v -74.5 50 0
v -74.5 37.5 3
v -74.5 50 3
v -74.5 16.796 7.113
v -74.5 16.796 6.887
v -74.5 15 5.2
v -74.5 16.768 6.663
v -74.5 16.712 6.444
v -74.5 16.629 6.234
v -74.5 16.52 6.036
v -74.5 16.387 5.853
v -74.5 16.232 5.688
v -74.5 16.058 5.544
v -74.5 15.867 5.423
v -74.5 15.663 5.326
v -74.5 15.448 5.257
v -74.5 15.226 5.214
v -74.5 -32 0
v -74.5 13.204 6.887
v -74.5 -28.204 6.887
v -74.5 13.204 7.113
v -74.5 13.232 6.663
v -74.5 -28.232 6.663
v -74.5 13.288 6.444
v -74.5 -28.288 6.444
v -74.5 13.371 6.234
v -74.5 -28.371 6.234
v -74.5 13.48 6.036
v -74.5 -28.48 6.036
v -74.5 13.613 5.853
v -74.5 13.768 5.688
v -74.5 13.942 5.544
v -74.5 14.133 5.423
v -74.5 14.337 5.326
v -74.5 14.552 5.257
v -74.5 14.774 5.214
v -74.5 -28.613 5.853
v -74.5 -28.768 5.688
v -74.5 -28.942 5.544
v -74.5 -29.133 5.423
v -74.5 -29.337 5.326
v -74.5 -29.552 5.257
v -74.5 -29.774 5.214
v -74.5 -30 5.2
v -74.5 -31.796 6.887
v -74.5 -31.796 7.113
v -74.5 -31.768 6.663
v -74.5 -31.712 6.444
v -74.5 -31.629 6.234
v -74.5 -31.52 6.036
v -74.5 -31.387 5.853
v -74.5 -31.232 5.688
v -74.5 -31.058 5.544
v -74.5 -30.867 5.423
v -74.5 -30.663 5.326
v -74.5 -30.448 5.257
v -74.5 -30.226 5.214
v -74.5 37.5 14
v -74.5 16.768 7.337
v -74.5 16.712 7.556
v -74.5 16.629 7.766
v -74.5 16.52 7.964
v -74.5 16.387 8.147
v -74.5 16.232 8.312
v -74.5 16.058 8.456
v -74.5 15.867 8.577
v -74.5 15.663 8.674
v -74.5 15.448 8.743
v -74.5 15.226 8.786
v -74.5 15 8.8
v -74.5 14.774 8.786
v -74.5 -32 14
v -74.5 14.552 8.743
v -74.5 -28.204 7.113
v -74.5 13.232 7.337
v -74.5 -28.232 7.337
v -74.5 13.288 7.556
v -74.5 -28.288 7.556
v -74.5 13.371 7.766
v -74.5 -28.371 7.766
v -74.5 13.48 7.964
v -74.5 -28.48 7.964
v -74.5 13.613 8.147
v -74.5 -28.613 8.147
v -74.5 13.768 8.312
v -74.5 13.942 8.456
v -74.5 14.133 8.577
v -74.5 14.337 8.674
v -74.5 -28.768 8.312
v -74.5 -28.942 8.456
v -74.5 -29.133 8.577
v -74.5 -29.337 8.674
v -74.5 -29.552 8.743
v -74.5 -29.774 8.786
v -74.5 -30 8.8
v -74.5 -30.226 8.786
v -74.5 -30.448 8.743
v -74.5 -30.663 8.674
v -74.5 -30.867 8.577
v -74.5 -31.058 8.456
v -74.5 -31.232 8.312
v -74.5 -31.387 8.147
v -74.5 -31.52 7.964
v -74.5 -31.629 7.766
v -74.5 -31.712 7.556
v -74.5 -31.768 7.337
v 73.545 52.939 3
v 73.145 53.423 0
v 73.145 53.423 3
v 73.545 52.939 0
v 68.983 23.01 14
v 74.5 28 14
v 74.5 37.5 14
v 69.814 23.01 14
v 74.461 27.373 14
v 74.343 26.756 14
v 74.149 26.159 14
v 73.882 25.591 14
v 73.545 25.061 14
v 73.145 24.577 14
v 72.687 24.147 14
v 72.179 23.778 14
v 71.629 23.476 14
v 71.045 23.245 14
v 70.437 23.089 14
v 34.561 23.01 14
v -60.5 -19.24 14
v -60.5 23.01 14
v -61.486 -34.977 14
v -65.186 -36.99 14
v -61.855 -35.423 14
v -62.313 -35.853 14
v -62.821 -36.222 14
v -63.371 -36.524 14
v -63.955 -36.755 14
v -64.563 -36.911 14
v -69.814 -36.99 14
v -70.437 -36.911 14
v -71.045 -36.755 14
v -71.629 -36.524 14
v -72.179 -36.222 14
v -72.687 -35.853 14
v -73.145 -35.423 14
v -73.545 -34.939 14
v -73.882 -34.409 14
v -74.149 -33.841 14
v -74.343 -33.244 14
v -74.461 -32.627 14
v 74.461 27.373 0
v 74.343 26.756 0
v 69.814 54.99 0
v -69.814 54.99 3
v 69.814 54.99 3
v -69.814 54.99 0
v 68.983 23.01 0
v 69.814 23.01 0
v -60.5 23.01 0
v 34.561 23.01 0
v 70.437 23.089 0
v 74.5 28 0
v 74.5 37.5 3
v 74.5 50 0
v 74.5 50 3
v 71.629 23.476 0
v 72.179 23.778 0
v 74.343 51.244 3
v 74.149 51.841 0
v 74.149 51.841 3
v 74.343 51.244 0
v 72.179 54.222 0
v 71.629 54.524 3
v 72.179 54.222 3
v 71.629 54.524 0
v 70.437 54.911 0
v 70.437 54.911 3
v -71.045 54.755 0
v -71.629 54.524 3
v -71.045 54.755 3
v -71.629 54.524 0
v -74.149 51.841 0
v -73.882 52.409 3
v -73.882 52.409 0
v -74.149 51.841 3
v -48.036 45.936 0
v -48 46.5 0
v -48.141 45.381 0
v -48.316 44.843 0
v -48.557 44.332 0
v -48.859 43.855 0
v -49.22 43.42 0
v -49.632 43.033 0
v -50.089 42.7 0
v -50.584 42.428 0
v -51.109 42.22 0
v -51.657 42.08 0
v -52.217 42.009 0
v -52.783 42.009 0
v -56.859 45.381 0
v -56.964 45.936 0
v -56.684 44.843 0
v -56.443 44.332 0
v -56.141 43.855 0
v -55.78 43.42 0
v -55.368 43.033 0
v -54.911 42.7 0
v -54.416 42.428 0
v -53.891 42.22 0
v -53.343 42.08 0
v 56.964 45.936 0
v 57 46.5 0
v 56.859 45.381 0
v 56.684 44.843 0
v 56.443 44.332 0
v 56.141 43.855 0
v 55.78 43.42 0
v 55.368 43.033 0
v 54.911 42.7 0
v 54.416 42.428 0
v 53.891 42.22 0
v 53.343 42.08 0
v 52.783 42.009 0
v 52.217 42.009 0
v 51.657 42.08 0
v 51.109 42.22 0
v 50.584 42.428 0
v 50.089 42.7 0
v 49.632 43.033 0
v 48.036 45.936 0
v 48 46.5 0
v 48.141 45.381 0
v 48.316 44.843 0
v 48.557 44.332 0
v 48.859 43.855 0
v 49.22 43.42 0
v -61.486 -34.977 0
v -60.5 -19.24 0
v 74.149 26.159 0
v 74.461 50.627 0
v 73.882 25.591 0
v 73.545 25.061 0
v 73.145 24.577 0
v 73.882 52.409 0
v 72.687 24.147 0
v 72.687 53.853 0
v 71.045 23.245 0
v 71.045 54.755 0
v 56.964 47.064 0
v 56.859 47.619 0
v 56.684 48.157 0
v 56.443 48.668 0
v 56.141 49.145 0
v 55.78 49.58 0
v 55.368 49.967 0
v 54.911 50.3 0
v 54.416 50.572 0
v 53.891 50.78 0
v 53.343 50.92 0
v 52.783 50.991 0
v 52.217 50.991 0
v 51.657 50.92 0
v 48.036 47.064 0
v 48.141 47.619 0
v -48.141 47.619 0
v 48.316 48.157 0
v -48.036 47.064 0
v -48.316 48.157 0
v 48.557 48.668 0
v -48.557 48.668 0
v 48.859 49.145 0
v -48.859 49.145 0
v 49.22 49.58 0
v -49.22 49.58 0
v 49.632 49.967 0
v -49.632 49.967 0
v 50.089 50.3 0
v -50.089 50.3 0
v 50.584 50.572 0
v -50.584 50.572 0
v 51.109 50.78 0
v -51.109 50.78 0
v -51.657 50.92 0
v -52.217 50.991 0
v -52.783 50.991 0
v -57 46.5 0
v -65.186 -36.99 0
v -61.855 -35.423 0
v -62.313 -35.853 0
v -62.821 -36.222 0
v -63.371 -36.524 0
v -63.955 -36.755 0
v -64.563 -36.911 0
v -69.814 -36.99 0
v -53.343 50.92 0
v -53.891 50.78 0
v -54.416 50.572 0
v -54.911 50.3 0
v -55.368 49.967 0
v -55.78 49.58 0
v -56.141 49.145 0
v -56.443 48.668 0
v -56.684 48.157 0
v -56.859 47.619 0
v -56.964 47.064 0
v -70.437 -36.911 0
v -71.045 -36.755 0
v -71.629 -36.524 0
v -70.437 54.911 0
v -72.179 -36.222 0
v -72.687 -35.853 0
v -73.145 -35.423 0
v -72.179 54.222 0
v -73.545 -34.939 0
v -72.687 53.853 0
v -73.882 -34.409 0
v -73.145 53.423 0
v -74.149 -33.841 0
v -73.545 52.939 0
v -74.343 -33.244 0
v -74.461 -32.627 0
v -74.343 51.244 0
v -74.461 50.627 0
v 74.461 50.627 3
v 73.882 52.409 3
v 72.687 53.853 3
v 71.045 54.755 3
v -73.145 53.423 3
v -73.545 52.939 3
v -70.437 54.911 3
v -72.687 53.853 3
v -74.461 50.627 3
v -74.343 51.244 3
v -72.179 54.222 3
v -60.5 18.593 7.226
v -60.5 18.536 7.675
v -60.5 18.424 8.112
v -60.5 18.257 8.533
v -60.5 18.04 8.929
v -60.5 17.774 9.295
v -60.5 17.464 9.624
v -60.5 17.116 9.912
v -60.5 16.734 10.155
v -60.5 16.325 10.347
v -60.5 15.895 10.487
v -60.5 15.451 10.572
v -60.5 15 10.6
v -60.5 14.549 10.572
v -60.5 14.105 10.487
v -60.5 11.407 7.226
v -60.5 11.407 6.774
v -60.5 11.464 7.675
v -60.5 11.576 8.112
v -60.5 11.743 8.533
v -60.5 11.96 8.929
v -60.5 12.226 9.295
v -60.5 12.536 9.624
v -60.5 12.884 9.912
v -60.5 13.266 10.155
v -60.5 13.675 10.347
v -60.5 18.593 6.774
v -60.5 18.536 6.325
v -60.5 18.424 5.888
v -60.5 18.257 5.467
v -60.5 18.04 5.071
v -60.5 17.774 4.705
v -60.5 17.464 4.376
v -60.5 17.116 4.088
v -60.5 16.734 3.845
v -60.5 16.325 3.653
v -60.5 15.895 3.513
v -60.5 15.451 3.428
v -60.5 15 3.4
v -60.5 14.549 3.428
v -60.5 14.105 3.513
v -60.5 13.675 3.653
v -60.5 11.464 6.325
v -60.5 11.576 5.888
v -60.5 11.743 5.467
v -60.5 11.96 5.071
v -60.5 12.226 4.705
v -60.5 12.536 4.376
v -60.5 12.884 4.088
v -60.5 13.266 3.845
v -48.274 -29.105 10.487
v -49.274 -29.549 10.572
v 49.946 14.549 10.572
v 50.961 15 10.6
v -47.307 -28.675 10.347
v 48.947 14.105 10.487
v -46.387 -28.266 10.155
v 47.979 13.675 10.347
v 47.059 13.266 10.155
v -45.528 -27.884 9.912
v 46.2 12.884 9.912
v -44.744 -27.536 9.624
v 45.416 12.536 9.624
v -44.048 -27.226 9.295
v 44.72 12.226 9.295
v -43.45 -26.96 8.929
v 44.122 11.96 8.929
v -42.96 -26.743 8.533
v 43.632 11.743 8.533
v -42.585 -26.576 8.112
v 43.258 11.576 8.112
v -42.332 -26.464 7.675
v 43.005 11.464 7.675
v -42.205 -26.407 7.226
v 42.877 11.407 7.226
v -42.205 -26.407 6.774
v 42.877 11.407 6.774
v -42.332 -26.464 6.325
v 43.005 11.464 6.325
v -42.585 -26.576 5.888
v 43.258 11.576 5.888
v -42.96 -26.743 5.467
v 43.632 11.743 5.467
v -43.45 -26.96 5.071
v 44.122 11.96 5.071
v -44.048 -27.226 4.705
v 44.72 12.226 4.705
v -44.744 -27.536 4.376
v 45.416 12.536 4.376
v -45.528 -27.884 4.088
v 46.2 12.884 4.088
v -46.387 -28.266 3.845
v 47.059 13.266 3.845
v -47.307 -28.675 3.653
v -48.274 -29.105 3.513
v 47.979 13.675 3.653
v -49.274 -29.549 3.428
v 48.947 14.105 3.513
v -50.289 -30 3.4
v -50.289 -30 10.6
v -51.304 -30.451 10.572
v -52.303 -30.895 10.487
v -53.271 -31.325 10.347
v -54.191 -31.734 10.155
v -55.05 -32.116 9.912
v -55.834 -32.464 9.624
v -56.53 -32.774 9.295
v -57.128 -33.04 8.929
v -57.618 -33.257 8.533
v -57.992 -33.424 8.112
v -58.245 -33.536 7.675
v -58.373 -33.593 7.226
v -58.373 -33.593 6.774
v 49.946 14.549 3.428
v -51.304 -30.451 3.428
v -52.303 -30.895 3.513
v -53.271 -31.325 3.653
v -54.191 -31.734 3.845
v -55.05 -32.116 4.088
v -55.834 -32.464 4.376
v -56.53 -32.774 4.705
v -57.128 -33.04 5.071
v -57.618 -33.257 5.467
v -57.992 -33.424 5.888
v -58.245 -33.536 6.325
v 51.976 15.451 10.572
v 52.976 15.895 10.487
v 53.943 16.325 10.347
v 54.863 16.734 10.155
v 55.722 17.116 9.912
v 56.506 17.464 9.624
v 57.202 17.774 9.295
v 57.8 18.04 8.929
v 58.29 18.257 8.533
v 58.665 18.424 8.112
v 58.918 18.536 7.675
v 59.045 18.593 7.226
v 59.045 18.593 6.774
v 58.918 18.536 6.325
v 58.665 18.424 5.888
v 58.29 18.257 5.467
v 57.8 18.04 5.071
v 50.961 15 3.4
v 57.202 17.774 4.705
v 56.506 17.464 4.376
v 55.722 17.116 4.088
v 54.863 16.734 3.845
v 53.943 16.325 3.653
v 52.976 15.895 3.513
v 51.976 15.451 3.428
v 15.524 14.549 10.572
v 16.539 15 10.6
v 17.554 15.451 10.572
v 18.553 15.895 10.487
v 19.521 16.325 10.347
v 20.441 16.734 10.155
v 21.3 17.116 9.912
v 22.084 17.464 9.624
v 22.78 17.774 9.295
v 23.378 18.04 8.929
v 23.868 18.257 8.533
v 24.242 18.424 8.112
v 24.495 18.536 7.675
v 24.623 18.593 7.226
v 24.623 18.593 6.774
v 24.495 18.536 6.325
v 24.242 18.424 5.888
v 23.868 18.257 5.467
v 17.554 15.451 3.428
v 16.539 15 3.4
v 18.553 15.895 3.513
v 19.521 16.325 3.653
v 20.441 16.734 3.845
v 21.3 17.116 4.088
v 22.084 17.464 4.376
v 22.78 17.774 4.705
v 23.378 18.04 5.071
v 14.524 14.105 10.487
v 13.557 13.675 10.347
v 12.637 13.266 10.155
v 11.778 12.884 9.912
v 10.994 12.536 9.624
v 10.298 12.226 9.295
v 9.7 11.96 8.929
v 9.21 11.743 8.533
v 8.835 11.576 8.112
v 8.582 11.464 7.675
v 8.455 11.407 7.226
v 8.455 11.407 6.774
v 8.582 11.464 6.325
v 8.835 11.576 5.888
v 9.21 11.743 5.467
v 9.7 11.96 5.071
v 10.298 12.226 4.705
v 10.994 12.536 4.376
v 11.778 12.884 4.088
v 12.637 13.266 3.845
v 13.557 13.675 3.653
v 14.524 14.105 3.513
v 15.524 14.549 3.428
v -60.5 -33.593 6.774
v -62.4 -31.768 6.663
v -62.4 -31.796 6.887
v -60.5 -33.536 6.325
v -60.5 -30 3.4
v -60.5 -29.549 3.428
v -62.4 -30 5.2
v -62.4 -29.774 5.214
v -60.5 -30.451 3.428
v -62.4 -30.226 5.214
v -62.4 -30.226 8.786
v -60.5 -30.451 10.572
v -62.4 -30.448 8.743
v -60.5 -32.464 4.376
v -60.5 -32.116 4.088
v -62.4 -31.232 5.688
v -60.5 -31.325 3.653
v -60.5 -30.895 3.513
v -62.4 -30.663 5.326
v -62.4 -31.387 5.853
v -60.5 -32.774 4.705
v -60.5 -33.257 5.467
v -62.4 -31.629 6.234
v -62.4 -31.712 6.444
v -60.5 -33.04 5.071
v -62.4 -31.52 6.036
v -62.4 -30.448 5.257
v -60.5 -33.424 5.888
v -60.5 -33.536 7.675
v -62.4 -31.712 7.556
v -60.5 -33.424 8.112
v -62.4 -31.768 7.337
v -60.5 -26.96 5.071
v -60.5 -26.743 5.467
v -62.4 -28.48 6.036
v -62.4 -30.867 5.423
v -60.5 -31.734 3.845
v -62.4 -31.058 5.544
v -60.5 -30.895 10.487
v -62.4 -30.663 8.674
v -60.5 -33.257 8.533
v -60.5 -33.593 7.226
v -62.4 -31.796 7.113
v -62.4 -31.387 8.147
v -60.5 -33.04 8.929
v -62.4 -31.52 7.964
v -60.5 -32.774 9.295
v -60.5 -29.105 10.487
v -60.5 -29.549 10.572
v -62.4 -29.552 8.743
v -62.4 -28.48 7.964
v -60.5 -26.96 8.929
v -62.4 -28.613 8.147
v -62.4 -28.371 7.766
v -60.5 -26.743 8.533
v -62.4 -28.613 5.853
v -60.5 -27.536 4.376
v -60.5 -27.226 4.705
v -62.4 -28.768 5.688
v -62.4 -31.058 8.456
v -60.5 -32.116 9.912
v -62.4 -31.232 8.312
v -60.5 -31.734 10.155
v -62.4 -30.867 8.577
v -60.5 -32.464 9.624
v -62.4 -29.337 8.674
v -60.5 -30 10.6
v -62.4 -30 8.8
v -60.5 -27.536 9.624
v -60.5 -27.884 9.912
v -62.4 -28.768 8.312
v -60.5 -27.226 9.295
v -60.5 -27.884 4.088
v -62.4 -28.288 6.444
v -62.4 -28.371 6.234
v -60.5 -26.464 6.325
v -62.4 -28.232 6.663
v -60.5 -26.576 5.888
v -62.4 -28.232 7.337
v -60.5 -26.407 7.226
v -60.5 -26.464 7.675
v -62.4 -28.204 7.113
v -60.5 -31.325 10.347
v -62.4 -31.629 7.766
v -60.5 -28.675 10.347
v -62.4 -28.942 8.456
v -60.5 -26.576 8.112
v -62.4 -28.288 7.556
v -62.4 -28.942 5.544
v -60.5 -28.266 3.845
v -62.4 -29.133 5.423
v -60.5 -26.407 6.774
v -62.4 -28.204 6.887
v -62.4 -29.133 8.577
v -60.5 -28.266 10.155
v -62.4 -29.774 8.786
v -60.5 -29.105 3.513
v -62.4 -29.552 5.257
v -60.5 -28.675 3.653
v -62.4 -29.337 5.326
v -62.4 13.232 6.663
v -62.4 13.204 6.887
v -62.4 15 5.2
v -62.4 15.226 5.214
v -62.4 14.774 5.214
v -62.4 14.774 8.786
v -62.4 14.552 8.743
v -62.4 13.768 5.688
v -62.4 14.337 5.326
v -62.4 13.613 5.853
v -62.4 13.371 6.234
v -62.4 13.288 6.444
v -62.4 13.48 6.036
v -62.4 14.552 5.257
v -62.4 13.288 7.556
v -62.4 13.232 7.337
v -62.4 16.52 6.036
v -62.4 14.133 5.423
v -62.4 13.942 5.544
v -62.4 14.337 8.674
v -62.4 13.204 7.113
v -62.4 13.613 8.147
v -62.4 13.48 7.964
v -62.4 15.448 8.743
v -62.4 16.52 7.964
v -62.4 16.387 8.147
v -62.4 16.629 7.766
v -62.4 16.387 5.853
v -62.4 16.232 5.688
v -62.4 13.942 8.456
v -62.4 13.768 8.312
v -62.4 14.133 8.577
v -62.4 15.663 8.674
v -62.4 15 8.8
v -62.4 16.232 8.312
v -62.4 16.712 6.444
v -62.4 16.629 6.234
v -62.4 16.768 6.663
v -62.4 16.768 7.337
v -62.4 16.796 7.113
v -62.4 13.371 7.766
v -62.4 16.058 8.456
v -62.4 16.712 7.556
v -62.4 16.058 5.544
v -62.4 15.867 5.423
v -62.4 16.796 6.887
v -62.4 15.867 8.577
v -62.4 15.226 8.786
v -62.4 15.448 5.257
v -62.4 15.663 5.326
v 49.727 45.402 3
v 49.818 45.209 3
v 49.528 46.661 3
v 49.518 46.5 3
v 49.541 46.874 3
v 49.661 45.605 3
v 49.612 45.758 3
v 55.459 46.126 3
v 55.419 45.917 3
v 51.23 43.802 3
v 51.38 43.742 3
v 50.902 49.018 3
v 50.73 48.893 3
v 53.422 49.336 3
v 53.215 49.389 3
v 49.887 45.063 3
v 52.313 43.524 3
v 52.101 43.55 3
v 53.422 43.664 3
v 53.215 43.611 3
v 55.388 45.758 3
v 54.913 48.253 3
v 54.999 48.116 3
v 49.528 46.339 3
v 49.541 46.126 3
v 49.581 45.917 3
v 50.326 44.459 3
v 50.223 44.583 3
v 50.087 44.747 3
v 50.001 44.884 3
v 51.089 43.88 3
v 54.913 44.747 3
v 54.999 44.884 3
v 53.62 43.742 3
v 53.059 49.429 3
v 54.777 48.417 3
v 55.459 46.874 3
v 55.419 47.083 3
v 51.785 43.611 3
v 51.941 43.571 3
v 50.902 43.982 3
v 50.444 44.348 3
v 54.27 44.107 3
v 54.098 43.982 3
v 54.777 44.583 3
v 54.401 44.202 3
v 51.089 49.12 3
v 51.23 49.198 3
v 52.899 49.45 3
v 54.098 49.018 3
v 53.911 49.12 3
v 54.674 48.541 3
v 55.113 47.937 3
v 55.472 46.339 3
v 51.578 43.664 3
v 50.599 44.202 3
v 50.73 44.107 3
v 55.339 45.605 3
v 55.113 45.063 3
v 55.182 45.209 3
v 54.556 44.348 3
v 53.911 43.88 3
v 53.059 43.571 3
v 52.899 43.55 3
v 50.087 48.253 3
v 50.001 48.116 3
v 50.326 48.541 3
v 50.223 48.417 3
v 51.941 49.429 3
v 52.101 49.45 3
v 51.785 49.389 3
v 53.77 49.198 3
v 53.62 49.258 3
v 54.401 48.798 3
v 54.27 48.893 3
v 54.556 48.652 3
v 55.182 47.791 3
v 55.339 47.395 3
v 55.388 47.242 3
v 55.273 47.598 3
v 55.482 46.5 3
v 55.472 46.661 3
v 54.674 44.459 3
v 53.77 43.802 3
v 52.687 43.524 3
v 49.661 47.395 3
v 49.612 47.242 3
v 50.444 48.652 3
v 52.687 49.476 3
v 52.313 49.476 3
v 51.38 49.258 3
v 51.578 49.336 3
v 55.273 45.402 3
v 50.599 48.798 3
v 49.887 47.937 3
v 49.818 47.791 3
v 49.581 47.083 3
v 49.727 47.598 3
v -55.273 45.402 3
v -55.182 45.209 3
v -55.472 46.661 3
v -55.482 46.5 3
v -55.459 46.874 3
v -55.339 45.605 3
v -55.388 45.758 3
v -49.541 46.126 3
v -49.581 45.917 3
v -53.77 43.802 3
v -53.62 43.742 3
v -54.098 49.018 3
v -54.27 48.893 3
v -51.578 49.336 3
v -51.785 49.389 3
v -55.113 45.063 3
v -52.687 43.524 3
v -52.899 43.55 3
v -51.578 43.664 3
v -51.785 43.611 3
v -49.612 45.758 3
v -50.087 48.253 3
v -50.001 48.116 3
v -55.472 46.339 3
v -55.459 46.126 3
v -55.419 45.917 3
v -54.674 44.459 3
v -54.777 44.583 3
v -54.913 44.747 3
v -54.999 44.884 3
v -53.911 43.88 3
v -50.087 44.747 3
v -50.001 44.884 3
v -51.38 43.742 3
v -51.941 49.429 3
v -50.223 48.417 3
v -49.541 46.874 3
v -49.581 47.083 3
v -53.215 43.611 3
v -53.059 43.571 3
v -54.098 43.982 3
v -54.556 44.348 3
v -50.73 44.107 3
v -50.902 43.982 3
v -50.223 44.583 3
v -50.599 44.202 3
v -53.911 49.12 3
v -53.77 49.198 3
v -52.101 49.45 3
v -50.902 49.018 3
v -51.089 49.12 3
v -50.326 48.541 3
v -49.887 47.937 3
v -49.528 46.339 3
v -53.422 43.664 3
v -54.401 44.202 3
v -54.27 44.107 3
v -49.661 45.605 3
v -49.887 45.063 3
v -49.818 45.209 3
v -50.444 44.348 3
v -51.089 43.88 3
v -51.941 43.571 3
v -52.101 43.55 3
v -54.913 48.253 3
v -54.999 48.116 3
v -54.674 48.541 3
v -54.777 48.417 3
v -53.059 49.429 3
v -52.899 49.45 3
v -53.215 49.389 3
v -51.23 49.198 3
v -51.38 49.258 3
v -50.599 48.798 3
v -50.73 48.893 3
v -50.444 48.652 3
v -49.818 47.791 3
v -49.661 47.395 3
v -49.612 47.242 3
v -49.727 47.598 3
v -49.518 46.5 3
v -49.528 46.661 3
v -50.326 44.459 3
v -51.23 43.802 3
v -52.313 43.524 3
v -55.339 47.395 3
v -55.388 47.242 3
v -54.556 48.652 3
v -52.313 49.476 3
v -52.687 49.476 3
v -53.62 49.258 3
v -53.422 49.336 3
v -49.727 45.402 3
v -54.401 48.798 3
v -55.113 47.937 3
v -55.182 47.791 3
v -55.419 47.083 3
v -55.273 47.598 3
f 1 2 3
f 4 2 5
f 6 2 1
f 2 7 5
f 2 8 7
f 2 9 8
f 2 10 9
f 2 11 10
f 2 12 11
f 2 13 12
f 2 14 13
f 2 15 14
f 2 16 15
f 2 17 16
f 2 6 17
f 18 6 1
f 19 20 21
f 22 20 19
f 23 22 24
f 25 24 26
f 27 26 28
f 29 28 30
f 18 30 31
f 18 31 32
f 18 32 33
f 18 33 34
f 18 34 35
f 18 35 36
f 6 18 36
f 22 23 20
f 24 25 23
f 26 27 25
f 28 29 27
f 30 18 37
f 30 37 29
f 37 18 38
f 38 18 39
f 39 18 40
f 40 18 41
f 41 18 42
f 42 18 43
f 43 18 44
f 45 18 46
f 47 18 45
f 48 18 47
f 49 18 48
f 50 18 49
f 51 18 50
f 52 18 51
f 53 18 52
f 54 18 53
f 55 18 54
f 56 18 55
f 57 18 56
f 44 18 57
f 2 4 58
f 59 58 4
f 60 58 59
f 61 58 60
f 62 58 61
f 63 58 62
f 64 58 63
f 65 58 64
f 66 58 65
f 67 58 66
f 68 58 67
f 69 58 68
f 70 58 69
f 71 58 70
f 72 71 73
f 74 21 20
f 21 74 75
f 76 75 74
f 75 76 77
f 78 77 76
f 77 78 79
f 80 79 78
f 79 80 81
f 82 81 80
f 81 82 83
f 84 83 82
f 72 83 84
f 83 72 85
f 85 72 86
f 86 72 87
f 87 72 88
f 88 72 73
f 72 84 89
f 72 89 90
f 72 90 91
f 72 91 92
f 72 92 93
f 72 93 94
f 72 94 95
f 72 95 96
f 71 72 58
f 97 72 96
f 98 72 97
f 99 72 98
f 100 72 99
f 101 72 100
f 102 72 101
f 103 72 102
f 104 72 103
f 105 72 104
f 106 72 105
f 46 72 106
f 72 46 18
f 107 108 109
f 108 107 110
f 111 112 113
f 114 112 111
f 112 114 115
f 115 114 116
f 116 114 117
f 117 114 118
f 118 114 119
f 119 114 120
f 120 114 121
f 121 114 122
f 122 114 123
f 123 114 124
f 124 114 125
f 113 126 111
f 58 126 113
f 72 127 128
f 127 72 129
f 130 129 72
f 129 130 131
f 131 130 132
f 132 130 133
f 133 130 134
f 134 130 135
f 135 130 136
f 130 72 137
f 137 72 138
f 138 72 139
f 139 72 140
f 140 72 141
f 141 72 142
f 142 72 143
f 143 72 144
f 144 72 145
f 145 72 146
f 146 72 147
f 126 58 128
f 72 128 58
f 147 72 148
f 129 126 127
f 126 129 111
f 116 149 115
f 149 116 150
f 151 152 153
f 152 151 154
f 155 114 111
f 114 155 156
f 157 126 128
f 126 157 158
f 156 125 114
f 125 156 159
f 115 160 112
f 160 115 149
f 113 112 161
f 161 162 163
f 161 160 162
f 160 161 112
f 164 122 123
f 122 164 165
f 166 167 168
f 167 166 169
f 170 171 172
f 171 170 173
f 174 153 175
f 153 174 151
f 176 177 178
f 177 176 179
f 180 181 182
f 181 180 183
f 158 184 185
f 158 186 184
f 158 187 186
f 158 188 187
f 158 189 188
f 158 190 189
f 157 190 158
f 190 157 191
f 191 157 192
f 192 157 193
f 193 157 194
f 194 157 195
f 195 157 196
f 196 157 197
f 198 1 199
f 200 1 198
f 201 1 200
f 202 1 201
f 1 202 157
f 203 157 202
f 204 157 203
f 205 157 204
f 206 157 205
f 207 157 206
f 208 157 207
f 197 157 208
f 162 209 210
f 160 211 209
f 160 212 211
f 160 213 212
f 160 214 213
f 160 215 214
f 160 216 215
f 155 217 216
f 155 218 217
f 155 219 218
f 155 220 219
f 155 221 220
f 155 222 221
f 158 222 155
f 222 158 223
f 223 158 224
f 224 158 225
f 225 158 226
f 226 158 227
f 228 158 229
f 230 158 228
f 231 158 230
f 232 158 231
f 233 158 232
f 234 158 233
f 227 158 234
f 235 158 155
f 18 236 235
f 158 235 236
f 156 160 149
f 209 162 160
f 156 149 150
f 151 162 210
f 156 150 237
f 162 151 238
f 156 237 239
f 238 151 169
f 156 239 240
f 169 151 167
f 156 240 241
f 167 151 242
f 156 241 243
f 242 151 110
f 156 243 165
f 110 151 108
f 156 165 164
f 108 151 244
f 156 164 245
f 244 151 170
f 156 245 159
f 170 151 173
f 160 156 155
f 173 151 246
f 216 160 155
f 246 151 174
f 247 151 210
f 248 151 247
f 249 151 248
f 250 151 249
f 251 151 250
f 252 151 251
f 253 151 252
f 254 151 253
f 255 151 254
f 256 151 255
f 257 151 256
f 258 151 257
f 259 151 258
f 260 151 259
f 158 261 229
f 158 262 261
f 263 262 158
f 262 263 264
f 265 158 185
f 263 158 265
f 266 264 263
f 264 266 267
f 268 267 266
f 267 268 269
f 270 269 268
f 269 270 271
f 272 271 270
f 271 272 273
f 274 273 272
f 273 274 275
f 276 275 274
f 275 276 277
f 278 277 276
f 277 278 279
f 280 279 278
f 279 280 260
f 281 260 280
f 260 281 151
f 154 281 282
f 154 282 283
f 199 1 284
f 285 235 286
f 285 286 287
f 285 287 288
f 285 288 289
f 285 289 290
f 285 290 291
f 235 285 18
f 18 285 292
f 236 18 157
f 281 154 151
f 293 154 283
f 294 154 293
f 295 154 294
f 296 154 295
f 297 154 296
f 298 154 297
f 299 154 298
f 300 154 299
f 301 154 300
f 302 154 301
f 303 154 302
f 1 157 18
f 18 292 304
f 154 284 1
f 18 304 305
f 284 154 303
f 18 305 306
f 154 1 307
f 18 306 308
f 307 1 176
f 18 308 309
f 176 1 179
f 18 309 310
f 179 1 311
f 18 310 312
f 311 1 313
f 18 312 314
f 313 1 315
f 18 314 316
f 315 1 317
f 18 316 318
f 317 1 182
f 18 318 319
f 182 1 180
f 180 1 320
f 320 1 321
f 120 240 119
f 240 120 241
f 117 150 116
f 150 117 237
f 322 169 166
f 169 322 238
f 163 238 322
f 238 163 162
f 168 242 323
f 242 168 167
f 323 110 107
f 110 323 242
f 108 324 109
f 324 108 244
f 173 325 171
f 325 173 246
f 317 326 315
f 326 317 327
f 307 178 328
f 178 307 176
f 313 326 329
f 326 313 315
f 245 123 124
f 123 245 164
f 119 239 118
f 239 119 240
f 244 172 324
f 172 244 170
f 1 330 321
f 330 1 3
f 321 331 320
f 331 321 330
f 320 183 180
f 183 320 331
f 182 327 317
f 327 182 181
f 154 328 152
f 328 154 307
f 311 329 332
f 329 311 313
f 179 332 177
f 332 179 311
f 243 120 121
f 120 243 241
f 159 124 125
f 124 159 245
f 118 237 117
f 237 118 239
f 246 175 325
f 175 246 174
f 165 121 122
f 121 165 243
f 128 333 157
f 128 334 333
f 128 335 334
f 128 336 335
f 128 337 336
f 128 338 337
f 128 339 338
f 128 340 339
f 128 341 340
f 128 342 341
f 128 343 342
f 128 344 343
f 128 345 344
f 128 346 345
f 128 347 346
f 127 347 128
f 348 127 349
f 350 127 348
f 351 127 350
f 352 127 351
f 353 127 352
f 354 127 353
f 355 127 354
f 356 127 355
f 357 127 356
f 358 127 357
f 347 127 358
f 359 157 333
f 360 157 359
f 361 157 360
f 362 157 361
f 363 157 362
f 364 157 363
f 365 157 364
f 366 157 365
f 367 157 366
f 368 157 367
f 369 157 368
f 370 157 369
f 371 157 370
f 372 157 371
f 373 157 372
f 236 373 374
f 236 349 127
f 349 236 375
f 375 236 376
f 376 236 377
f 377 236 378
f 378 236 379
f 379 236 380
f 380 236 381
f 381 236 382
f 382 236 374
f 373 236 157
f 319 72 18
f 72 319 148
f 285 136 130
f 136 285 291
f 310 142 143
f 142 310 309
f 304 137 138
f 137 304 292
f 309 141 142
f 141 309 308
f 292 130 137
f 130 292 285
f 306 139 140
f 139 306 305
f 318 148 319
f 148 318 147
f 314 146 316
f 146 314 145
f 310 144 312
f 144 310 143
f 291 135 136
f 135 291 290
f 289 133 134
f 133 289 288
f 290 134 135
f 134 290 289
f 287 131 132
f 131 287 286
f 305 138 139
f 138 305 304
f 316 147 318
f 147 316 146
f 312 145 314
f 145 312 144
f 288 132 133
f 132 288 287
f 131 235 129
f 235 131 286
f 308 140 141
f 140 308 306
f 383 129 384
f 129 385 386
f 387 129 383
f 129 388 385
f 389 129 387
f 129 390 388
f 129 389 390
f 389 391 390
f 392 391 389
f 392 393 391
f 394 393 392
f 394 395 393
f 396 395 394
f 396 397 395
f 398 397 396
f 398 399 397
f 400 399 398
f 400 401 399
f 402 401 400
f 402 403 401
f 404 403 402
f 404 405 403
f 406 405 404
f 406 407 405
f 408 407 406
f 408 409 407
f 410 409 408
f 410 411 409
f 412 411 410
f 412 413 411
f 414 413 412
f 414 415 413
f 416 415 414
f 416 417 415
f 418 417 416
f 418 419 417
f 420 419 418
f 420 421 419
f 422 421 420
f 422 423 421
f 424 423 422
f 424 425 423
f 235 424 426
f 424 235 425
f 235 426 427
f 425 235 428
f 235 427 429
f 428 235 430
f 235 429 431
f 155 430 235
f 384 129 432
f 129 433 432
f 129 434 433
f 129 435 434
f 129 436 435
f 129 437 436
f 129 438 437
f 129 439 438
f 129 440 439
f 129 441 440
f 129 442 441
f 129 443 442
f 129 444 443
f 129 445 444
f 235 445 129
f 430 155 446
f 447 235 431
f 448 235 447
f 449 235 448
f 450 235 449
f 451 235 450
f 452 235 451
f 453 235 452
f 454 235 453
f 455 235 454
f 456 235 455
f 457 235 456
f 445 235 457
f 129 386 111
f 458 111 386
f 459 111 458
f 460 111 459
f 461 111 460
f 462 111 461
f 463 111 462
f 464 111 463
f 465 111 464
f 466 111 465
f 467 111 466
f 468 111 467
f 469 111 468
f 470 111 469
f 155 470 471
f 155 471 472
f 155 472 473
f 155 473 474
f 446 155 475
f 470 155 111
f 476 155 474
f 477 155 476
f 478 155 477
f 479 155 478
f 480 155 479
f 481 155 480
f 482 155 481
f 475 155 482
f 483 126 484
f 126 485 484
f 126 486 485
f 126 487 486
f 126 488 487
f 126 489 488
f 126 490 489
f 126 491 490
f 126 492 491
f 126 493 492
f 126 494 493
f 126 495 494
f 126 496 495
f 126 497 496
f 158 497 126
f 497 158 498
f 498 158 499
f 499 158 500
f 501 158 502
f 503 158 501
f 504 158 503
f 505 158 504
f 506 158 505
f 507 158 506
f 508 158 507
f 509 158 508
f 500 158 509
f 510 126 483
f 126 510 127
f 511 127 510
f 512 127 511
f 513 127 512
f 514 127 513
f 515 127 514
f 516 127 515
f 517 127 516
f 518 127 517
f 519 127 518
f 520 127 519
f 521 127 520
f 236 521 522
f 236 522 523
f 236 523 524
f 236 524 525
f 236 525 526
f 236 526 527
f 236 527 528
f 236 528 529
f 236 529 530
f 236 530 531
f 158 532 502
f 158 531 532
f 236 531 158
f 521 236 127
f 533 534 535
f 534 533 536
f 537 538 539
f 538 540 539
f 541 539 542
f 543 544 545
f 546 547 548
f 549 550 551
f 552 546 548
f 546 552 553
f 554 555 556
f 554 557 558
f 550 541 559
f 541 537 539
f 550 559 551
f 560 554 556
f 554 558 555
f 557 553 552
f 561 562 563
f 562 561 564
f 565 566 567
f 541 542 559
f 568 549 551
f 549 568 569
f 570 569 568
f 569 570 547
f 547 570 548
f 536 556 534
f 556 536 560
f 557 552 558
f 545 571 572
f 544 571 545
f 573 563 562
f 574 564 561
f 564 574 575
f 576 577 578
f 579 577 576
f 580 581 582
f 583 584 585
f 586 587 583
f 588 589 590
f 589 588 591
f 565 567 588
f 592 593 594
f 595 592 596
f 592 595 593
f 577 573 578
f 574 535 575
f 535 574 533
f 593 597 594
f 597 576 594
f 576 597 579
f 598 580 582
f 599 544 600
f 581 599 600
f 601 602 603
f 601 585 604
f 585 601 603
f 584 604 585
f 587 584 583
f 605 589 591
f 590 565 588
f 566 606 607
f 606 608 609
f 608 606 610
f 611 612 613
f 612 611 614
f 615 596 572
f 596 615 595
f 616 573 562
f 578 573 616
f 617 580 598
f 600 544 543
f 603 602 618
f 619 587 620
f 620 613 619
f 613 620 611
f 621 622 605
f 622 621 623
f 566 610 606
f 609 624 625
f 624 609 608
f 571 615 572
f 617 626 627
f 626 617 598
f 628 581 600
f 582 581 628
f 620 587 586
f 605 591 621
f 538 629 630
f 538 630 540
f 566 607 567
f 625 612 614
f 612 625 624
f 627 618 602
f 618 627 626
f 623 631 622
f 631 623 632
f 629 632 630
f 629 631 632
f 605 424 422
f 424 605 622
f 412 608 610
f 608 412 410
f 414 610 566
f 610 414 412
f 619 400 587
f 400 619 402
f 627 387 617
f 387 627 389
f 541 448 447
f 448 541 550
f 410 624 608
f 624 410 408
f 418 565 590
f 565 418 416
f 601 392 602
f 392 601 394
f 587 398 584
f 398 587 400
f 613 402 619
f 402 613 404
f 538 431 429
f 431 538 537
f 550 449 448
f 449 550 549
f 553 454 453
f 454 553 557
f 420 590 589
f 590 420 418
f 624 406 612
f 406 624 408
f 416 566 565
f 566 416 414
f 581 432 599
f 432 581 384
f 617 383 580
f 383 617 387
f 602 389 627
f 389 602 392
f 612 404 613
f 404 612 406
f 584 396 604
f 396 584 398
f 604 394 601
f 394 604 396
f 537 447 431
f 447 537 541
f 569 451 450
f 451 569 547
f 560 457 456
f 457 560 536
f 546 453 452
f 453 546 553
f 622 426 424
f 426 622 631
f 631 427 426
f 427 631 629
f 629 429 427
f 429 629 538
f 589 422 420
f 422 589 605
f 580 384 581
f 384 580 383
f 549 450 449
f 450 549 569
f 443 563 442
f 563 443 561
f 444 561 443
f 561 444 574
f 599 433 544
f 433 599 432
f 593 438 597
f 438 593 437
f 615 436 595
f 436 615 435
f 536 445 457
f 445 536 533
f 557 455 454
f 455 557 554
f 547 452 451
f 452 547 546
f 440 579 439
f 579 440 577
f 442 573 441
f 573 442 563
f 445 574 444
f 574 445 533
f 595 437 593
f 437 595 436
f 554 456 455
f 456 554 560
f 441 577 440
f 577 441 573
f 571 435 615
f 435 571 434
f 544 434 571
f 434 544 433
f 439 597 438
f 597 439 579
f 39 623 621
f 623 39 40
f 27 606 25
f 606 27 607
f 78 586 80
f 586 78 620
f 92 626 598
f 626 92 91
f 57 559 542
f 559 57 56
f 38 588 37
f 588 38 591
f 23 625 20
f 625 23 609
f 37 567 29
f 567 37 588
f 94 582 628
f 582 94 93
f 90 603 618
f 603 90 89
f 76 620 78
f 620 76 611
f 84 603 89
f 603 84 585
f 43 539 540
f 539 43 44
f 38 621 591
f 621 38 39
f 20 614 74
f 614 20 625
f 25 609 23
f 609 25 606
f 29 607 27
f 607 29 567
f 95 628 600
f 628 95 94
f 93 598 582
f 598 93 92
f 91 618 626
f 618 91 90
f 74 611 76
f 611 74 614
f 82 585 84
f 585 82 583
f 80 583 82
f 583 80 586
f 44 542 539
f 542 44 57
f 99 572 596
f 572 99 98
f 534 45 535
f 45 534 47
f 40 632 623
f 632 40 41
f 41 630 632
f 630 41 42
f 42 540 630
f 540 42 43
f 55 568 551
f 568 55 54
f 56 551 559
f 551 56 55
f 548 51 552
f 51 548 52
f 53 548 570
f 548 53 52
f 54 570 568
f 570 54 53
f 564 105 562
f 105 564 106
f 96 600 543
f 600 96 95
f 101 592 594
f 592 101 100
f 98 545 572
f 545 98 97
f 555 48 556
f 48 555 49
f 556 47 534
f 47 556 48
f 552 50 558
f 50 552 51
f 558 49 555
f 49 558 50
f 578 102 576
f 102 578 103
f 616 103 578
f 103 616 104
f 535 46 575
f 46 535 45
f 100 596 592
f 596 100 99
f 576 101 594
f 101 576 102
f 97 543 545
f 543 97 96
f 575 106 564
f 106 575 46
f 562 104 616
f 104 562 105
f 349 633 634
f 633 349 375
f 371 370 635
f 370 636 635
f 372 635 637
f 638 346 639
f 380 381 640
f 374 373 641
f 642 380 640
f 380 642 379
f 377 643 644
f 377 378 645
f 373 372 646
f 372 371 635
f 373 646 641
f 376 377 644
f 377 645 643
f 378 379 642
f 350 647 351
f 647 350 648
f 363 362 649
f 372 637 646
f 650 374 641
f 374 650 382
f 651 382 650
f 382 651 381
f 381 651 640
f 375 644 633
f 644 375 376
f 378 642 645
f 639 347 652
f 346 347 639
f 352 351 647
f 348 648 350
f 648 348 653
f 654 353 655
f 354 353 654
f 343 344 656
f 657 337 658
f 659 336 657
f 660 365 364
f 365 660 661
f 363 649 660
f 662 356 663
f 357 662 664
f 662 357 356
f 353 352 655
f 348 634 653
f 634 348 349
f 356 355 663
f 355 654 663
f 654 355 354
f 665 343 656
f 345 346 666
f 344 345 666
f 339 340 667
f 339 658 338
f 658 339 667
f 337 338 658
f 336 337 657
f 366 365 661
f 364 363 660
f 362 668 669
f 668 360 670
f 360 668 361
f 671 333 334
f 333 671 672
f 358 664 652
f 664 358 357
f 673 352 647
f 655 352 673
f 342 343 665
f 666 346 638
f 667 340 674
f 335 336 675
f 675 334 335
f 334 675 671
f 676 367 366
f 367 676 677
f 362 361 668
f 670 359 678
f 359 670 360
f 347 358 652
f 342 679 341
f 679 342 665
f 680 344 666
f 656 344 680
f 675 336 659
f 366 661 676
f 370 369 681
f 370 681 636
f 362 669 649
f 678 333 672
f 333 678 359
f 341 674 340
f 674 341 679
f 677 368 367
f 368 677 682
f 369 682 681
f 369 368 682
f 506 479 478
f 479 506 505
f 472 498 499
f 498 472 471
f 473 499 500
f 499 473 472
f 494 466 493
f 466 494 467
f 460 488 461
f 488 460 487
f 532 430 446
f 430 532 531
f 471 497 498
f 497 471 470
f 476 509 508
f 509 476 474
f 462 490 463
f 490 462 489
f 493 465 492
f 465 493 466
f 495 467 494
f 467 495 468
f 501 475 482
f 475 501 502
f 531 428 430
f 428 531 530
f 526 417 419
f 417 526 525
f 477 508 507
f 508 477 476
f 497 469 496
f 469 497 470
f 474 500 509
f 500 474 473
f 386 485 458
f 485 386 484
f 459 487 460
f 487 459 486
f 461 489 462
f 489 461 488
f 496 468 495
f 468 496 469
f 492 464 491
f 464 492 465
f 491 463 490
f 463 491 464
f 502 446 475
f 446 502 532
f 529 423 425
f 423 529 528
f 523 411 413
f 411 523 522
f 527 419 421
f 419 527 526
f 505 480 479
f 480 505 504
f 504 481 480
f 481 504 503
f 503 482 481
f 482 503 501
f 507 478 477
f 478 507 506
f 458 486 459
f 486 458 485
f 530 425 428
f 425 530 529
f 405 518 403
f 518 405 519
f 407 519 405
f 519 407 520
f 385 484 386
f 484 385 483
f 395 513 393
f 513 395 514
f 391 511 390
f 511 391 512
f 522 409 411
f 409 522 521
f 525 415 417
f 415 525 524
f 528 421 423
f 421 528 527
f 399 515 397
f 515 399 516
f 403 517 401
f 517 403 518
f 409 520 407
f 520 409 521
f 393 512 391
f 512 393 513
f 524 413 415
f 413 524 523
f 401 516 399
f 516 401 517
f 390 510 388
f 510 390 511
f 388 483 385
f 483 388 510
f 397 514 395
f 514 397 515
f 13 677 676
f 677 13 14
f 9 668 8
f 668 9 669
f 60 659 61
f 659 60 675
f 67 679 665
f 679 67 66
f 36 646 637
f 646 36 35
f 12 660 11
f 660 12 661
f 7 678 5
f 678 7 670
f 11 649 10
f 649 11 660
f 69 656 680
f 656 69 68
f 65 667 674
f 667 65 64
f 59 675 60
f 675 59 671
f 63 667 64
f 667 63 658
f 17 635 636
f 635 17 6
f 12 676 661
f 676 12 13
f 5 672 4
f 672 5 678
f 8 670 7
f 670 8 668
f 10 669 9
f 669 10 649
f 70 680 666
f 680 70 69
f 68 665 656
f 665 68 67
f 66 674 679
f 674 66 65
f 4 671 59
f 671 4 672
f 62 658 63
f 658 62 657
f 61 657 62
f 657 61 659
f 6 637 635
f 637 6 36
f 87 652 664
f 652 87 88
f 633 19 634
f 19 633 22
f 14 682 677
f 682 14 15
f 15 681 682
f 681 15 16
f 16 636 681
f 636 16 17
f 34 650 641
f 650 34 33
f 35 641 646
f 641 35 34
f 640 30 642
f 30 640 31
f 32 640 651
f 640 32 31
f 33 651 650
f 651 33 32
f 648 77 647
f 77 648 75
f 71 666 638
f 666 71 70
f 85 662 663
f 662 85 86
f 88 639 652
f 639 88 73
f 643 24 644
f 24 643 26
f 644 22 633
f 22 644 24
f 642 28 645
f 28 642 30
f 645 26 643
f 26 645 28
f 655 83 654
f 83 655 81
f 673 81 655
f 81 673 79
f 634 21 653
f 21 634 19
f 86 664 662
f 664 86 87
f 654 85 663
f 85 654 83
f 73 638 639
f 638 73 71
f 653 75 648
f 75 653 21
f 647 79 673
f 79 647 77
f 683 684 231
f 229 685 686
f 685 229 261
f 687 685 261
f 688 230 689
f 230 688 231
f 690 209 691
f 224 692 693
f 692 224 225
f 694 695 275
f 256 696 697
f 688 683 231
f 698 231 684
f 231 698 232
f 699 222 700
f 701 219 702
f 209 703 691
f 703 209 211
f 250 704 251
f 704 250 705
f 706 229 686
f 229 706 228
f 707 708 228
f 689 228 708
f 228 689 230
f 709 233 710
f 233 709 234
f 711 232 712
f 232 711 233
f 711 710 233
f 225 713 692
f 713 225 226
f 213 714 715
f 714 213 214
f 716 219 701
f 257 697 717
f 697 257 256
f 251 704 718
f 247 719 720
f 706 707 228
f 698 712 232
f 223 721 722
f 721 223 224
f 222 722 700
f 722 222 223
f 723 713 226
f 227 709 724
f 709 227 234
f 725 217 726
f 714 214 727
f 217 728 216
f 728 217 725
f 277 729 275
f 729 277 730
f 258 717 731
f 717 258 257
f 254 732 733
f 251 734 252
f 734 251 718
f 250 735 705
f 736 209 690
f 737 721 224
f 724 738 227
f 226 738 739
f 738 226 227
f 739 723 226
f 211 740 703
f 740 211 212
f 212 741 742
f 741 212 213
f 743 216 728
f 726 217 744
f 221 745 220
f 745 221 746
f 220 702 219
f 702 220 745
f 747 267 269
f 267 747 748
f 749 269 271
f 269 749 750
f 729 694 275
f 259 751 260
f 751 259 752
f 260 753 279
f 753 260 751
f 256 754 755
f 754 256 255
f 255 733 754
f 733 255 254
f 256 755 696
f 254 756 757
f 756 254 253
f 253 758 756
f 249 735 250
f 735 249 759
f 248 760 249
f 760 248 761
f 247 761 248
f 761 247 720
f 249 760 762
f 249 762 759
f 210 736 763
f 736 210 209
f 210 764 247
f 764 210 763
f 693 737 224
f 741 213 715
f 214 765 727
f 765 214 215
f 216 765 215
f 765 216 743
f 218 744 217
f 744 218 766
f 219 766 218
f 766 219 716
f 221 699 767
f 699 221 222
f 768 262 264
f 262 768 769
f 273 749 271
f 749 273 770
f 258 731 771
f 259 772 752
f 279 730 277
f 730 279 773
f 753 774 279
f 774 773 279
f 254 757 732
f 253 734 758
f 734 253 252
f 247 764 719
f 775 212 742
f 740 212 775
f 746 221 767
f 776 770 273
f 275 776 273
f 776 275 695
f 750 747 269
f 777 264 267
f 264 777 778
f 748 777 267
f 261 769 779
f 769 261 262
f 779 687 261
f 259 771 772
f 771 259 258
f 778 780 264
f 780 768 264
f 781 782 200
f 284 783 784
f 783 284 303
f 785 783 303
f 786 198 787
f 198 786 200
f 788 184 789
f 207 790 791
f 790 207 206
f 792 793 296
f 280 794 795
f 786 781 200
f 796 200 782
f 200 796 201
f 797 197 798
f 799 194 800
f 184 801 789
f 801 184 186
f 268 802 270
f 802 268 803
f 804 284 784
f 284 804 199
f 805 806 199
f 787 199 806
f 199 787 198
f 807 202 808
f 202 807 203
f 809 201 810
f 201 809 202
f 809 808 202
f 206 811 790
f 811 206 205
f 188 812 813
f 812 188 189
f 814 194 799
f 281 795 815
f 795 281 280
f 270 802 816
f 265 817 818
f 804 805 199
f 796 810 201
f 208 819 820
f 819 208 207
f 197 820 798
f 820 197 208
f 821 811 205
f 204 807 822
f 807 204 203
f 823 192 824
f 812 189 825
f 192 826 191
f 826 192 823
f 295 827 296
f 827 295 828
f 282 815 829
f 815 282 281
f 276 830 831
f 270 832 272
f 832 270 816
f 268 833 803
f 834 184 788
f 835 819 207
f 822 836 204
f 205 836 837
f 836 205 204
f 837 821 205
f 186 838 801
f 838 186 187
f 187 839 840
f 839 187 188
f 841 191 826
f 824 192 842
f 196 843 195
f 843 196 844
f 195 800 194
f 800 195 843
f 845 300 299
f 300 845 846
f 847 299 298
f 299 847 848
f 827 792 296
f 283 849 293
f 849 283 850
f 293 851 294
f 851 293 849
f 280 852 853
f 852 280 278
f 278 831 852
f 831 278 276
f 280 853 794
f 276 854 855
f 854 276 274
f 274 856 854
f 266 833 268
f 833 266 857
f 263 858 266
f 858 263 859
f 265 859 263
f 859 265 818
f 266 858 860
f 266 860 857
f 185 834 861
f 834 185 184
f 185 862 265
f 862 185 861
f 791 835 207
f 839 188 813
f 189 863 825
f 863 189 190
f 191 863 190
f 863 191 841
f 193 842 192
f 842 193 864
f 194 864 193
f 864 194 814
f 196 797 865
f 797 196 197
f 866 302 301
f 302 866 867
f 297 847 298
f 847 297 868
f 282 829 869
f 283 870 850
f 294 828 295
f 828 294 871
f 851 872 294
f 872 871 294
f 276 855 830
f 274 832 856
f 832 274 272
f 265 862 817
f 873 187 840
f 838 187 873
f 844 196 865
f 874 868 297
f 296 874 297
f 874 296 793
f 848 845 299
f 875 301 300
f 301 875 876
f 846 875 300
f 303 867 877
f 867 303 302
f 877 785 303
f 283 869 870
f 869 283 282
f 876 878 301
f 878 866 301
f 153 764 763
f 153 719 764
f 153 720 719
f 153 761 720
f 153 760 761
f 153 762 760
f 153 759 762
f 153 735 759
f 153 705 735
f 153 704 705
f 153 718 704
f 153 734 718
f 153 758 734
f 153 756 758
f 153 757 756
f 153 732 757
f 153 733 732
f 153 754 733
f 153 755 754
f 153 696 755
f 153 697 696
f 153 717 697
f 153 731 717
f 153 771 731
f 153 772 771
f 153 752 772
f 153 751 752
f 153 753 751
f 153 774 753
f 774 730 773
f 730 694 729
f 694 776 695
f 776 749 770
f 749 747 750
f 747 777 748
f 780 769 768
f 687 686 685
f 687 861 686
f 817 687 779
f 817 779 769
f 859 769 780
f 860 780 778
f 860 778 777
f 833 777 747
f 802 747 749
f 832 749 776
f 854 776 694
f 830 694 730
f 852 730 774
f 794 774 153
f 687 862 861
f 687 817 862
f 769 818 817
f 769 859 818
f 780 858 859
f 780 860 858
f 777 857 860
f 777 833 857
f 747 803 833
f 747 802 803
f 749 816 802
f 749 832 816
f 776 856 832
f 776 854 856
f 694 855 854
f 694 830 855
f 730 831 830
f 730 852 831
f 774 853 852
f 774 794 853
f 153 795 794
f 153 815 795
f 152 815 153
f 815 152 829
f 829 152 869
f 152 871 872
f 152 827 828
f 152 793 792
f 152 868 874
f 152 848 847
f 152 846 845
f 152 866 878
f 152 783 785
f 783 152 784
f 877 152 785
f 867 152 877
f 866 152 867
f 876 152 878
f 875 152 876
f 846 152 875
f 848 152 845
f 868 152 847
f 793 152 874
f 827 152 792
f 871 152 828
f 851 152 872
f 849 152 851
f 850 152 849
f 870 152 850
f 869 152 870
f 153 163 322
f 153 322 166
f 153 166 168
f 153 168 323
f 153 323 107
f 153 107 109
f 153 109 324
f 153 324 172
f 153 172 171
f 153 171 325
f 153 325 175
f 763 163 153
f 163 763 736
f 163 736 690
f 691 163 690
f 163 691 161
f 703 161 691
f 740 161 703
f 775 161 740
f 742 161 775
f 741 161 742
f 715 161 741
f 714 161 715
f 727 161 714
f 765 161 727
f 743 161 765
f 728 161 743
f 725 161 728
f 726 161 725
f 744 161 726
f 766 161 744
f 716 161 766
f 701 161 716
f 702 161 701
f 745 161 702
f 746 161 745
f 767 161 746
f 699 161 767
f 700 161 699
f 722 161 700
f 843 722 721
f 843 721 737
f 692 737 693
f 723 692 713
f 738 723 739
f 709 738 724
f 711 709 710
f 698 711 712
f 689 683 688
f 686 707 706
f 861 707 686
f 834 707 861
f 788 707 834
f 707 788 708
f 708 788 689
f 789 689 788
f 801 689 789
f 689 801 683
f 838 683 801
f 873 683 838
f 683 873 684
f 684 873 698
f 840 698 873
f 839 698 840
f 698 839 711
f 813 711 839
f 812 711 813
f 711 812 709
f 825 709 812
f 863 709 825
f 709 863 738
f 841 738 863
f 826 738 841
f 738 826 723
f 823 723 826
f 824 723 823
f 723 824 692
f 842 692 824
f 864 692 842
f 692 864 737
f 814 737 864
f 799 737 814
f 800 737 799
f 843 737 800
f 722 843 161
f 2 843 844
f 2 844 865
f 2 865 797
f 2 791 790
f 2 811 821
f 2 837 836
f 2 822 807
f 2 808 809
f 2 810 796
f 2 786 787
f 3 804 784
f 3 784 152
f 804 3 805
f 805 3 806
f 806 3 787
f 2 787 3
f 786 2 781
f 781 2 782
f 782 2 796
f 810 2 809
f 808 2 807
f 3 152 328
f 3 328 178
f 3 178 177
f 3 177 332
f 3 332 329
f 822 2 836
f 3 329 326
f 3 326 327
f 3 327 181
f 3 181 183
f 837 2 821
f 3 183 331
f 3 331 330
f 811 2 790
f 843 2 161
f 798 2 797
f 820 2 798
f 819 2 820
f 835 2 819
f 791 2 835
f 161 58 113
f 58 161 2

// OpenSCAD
$fn = 50;


difference() {
	union() {
		translate(v = [0, 39.0000000000, 0]) {
			hull() {
				translate(v = [-69.5000000000, 11.0000000000, 0]) {
					cylinder(h = 14, r = 5);
				}
				translate(v = [69.5000000000, 11.0000000000, 0]) {
					cylinder(h = 14, r = 5);
				}
				translate(v = [-69.5000000000, -11.0000000000, 0]) {
					cylinder(h = 14, r = 5);
				}
				translate(v = [69.5000000000, -11.0000000000, 0]) {
					cylinder(h = 14, r = 5);
				}
			}
		}
		translate(v = [-67.5000000000, 0, 0]) {
			hull() {
				translate(v = [-2.0000000000, 32.0000000000, 0]) {
					cylinder(h = 14, r = 5);
				}
				translate(v = [2.0000000000, 32.0000000000, 0]) {
					cylinder(h = 14, r = 5);
				}
				translate(v = [-2.0000000000, -32.0000000000, 0]) {
					cylinder(h = 14, r = 5);
				}
				translate(v = [2.0000000000, -32.0000000000, 0]) {
					cylinder(h = 14, r = 5);
				}
			}
		}
		rotate(a = [0, 0, 23.9624889746]) {
			hull() {
				translate(v = [-73.3664335135, 2.0000000000, 0]) {
					cylinder(h = 14, r = 5);
				}
				translate(v = [73.3664335135, 2.0000000000, 0]) {
					cylinder(h = 14, r = 5);
				}
				translate(v = [-73.3664335135, -2.0000000000, 0]) {
					cylinder(h = 14, r = 5);
				}
				translate(v = [73.3664335135, -2.0000000000, 0]) {
					cylinder(h = 14, r = 5);
				}
			}
		}
	}
	union() {
		translate(v = [-60.5000000000, -30.0000000000, 7.0000000000]) {
			rotate(a = [0, 90, 0]) {
				difference() {
					union() {
						#translate(v = [0, 0, -14.0000000000]) {
							cylinder(h = 14, r = 1.5000000000);
						}
						#translate(v = [0, 0, -1.9000000000]) {
							cylinder(h = 1.9000000000, r1 = 1.8000000000, r2 = 3.6000000000);
						}
						#cylinder(h = 250, r = 3.6000000000);
						#translate(v = [0, 0, -14.0000000000]) {
							cylinder(h = 14, r = 1.8000000000);
						}
						#translate(v = [0, 0, -14.0000000000]) {
							cylinder(h = 14, r = 1.5000000000);
						}
					}
					union();
				}
			}
		}
		translate(v = [-60.5000000000, 15.0000000000, 7.0000000000]) {
			rotate(a = [0, 90, 0]) {
				difference() {
					union() {
						#translate(v = [0, 0, -14.0000000000]) {
							cylinder(h = 14, r = 1.5000000000);
						}
						#translate(v = [0, 0, -1.9000000000]) {
							cylinder(h = 1.9000000000, r1 = 1.8000000000, r2 = 3.6000000000);
						}
						#cylinder(h = 250, r = 3.6000000000);
						#translate(v = [0, 0, -14.0000000000]) {
							cylinder(h = 14, r = 1.8000000000);
						}
						#translate(v = [0, 0, -14.0000000000]) {
							cylinder(h = 14, r = 1.5000000000);
						}
					}
					union();
				}
			}
		}
		translate(v = [52.5000000000, 46.5000000000, 0.0000000000]) {
			rotate(a = [0, 180, 0]) {
				difference() {
					union() {
						#translate(v = [0, 0, -14.0000000000]) {
							cylinder(h = 14, r = 2.2500000000);
						}
						#translate(v = [0, 0, -4.2000000000]) {
							cylinder(h = 4.2000000000, r1 = 2.3750000000, r2 = 4.5000000000);
						}
						#cylinder(h = 250, r = 4.5000000000);
						#translate(v = [0, 0, -14.0000000000]) {
							cylinder(h = 14, r = 2.3750000000);
						}
						#translate(v = [0, 0, -14.0000000000]) {
							cylinder(h = 14, r = 2.2500000000);
						}
					}
					union();
				}
			}
		}
		translate(v = [-52.5000000000, 46.5000000000, 0.0000000000]) {
			rotate(a = [0, 180, 0]) {
				difference() {
					union() {
						#translate(v = [0, 0, -14.0000000000]) {
							cylinder(h = 14, r = 2.2500000000);
						}
						#translate(v = [0, 0, -4.2000000000]) {
							cylinder(h = 4.2000000000, r1 = 2.3750000000, r2 = 4.5000000000);
						}
						#cylinder(h = 250, r = 4.5000000000);
						#translate(v = [0, 0, -14.0000000000]) {
							cylinder(h = 14, r = 2.3750000000);
						}
						#translate(v = [0, 0, -14.0000000000]) {
							cylinder(h = 14, r = 2.2500000000);
						}
					}
					union();
				}
			}
		}
		translate(v = [-74.5000000000, 37.5000000000, 3]) {
			cube(size = [149, 18, 11]);
		}
	}
}
